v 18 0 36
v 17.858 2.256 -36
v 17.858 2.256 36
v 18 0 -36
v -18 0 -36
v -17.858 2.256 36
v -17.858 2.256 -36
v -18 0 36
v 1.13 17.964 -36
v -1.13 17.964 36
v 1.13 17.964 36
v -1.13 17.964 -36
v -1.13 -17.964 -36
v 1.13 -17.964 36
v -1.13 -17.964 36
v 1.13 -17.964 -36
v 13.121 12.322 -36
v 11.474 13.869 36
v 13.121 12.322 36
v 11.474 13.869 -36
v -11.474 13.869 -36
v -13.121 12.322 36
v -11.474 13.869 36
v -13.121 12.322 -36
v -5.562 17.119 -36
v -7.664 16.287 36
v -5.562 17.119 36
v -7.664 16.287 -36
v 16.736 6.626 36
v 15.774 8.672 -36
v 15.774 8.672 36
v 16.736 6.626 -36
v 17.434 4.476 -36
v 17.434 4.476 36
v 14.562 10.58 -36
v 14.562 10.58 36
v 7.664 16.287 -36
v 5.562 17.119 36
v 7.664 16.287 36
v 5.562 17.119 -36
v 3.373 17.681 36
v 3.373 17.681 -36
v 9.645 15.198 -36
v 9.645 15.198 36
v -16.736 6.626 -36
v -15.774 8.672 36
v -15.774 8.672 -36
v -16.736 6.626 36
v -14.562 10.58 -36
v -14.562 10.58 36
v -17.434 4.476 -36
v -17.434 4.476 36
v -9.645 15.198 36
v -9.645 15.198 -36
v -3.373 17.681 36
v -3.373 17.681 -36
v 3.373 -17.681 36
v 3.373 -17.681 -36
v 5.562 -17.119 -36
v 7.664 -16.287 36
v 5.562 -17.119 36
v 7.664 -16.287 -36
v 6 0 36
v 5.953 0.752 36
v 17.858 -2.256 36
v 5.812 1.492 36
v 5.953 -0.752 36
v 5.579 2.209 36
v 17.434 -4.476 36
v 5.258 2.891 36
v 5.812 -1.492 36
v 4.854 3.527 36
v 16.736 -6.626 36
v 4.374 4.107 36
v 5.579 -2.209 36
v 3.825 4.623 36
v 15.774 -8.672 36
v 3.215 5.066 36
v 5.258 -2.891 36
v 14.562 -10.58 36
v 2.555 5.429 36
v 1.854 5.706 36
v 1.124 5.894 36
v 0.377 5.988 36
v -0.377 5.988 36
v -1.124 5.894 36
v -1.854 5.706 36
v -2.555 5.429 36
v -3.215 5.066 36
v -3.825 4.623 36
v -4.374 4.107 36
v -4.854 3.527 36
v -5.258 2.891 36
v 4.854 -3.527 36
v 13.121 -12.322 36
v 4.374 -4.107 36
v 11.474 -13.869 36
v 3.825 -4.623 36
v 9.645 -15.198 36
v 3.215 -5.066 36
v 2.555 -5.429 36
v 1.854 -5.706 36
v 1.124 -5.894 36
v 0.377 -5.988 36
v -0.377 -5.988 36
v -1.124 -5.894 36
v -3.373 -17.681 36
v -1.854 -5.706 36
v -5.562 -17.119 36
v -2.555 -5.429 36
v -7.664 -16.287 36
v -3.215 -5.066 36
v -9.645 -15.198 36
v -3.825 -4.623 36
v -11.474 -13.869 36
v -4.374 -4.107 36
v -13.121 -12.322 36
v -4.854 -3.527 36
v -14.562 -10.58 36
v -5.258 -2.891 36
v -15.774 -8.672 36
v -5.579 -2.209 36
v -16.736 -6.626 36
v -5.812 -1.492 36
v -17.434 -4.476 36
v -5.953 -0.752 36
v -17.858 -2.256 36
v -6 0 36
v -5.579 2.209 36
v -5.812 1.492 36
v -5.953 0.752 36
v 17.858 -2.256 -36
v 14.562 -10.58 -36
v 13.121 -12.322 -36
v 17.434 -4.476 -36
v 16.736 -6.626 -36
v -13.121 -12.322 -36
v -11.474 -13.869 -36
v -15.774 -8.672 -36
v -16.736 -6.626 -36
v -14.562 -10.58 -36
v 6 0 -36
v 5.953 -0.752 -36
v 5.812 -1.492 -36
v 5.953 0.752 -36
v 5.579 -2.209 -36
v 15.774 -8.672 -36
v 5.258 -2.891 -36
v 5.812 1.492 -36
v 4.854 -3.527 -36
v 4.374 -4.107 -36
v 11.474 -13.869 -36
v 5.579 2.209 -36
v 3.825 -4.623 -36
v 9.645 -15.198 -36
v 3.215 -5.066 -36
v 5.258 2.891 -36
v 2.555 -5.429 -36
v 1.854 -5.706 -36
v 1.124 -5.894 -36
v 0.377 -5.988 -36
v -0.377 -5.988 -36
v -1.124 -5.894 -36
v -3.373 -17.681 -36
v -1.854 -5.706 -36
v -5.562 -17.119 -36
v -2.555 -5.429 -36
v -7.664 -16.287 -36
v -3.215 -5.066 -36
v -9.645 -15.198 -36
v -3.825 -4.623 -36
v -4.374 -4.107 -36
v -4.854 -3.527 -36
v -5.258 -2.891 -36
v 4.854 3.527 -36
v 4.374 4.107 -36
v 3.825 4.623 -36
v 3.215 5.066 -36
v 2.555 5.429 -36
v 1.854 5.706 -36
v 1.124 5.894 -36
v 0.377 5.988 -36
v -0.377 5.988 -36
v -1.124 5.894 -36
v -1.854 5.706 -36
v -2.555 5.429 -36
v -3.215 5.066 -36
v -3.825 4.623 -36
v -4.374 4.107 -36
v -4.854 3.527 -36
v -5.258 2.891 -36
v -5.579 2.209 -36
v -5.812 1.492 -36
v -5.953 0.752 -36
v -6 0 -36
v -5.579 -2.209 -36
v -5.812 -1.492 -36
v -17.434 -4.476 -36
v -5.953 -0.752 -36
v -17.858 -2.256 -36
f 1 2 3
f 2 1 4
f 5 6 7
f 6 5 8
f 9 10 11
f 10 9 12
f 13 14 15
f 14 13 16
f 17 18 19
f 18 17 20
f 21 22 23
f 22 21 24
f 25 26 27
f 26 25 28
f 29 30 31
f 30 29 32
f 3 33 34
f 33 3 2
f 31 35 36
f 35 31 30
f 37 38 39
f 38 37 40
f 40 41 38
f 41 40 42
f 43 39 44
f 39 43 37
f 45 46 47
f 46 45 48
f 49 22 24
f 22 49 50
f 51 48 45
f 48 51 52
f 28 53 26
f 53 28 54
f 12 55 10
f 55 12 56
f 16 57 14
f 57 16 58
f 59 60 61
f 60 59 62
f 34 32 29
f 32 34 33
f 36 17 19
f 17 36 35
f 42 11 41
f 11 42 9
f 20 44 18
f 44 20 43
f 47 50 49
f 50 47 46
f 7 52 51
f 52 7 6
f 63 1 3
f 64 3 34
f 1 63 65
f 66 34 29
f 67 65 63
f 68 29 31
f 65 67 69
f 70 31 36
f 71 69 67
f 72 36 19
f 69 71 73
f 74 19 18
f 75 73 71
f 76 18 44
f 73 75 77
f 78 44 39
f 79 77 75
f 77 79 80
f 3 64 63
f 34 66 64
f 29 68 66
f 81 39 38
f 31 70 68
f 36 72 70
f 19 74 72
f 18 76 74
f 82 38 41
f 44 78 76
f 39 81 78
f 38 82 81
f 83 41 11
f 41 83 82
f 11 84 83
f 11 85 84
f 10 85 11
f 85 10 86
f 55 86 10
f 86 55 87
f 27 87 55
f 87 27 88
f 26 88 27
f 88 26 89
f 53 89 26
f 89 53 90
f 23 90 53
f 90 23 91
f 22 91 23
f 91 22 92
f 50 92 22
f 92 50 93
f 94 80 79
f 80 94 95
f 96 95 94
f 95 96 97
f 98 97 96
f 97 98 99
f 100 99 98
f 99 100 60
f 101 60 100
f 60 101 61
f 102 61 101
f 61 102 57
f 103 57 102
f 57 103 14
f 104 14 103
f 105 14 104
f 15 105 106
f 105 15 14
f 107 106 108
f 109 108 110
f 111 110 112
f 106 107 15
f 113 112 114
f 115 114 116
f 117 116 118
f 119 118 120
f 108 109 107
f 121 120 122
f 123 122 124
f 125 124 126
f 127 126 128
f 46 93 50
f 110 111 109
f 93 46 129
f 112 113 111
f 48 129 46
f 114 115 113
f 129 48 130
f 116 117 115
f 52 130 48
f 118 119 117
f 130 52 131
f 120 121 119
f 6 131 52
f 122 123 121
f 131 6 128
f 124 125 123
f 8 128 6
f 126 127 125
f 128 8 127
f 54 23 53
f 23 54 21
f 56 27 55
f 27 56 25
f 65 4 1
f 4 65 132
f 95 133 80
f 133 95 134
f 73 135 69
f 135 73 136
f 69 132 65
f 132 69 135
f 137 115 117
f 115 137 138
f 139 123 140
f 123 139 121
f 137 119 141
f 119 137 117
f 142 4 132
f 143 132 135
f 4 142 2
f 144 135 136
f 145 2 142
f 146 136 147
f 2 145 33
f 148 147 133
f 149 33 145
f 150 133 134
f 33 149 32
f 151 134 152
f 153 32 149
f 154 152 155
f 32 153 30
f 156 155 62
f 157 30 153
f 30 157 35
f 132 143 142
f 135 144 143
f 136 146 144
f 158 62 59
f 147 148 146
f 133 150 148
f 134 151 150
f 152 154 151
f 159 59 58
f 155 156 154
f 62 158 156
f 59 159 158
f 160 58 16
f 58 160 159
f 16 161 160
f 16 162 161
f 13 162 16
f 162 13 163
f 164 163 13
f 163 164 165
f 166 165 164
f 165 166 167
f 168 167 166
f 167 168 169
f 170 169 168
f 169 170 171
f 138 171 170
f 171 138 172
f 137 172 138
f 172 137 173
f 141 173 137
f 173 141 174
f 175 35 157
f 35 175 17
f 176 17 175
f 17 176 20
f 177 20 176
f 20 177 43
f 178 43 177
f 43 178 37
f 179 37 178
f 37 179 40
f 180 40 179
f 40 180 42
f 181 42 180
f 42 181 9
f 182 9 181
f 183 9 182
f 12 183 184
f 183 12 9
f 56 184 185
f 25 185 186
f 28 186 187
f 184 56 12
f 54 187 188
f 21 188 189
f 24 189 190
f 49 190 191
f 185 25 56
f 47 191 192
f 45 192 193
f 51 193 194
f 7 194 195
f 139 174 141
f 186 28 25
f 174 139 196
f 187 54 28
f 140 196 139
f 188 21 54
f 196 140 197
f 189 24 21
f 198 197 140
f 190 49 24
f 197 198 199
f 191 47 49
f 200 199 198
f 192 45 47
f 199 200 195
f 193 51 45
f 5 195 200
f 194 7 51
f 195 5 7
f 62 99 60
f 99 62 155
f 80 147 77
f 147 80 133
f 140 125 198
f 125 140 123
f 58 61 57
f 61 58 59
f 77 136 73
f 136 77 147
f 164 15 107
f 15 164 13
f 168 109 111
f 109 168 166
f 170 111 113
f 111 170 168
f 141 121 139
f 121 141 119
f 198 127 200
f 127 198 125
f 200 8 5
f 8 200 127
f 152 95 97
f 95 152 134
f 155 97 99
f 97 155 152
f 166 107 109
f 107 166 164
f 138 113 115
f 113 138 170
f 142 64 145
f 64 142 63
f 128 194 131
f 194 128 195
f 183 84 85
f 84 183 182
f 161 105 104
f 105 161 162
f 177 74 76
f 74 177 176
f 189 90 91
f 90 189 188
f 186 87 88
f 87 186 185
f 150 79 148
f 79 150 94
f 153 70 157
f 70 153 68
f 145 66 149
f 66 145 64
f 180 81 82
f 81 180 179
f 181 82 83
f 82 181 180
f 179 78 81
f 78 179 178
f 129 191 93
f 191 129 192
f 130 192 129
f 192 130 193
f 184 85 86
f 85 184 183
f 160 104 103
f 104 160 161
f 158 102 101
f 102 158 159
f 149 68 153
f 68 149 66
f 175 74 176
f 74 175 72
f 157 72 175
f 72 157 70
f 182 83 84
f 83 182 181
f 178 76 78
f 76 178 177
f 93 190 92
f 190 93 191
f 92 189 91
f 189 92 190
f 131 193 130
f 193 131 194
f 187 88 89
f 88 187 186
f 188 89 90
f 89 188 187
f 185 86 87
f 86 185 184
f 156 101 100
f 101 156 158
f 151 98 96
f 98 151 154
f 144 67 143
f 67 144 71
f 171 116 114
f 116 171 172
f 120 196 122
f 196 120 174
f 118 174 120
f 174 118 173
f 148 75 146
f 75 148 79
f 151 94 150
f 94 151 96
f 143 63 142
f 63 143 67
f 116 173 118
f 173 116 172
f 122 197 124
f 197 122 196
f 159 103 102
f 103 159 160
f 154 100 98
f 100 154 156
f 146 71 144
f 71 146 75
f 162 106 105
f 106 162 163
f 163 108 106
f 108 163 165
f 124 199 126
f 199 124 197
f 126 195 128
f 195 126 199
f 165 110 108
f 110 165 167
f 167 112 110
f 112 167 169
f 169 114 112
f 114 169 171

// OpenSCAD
$fn = 50;


difference() {
	union() {
		translate(v = [0, 0, -36.0000000000]) {
			cylinder(h = 72, r = 18.0000000000);
		}
	}
	union() {
		translate(v = [0, 0, -100.0000000000]) {
			cylinder(h = 200, r = 6);
		}
	}
}
